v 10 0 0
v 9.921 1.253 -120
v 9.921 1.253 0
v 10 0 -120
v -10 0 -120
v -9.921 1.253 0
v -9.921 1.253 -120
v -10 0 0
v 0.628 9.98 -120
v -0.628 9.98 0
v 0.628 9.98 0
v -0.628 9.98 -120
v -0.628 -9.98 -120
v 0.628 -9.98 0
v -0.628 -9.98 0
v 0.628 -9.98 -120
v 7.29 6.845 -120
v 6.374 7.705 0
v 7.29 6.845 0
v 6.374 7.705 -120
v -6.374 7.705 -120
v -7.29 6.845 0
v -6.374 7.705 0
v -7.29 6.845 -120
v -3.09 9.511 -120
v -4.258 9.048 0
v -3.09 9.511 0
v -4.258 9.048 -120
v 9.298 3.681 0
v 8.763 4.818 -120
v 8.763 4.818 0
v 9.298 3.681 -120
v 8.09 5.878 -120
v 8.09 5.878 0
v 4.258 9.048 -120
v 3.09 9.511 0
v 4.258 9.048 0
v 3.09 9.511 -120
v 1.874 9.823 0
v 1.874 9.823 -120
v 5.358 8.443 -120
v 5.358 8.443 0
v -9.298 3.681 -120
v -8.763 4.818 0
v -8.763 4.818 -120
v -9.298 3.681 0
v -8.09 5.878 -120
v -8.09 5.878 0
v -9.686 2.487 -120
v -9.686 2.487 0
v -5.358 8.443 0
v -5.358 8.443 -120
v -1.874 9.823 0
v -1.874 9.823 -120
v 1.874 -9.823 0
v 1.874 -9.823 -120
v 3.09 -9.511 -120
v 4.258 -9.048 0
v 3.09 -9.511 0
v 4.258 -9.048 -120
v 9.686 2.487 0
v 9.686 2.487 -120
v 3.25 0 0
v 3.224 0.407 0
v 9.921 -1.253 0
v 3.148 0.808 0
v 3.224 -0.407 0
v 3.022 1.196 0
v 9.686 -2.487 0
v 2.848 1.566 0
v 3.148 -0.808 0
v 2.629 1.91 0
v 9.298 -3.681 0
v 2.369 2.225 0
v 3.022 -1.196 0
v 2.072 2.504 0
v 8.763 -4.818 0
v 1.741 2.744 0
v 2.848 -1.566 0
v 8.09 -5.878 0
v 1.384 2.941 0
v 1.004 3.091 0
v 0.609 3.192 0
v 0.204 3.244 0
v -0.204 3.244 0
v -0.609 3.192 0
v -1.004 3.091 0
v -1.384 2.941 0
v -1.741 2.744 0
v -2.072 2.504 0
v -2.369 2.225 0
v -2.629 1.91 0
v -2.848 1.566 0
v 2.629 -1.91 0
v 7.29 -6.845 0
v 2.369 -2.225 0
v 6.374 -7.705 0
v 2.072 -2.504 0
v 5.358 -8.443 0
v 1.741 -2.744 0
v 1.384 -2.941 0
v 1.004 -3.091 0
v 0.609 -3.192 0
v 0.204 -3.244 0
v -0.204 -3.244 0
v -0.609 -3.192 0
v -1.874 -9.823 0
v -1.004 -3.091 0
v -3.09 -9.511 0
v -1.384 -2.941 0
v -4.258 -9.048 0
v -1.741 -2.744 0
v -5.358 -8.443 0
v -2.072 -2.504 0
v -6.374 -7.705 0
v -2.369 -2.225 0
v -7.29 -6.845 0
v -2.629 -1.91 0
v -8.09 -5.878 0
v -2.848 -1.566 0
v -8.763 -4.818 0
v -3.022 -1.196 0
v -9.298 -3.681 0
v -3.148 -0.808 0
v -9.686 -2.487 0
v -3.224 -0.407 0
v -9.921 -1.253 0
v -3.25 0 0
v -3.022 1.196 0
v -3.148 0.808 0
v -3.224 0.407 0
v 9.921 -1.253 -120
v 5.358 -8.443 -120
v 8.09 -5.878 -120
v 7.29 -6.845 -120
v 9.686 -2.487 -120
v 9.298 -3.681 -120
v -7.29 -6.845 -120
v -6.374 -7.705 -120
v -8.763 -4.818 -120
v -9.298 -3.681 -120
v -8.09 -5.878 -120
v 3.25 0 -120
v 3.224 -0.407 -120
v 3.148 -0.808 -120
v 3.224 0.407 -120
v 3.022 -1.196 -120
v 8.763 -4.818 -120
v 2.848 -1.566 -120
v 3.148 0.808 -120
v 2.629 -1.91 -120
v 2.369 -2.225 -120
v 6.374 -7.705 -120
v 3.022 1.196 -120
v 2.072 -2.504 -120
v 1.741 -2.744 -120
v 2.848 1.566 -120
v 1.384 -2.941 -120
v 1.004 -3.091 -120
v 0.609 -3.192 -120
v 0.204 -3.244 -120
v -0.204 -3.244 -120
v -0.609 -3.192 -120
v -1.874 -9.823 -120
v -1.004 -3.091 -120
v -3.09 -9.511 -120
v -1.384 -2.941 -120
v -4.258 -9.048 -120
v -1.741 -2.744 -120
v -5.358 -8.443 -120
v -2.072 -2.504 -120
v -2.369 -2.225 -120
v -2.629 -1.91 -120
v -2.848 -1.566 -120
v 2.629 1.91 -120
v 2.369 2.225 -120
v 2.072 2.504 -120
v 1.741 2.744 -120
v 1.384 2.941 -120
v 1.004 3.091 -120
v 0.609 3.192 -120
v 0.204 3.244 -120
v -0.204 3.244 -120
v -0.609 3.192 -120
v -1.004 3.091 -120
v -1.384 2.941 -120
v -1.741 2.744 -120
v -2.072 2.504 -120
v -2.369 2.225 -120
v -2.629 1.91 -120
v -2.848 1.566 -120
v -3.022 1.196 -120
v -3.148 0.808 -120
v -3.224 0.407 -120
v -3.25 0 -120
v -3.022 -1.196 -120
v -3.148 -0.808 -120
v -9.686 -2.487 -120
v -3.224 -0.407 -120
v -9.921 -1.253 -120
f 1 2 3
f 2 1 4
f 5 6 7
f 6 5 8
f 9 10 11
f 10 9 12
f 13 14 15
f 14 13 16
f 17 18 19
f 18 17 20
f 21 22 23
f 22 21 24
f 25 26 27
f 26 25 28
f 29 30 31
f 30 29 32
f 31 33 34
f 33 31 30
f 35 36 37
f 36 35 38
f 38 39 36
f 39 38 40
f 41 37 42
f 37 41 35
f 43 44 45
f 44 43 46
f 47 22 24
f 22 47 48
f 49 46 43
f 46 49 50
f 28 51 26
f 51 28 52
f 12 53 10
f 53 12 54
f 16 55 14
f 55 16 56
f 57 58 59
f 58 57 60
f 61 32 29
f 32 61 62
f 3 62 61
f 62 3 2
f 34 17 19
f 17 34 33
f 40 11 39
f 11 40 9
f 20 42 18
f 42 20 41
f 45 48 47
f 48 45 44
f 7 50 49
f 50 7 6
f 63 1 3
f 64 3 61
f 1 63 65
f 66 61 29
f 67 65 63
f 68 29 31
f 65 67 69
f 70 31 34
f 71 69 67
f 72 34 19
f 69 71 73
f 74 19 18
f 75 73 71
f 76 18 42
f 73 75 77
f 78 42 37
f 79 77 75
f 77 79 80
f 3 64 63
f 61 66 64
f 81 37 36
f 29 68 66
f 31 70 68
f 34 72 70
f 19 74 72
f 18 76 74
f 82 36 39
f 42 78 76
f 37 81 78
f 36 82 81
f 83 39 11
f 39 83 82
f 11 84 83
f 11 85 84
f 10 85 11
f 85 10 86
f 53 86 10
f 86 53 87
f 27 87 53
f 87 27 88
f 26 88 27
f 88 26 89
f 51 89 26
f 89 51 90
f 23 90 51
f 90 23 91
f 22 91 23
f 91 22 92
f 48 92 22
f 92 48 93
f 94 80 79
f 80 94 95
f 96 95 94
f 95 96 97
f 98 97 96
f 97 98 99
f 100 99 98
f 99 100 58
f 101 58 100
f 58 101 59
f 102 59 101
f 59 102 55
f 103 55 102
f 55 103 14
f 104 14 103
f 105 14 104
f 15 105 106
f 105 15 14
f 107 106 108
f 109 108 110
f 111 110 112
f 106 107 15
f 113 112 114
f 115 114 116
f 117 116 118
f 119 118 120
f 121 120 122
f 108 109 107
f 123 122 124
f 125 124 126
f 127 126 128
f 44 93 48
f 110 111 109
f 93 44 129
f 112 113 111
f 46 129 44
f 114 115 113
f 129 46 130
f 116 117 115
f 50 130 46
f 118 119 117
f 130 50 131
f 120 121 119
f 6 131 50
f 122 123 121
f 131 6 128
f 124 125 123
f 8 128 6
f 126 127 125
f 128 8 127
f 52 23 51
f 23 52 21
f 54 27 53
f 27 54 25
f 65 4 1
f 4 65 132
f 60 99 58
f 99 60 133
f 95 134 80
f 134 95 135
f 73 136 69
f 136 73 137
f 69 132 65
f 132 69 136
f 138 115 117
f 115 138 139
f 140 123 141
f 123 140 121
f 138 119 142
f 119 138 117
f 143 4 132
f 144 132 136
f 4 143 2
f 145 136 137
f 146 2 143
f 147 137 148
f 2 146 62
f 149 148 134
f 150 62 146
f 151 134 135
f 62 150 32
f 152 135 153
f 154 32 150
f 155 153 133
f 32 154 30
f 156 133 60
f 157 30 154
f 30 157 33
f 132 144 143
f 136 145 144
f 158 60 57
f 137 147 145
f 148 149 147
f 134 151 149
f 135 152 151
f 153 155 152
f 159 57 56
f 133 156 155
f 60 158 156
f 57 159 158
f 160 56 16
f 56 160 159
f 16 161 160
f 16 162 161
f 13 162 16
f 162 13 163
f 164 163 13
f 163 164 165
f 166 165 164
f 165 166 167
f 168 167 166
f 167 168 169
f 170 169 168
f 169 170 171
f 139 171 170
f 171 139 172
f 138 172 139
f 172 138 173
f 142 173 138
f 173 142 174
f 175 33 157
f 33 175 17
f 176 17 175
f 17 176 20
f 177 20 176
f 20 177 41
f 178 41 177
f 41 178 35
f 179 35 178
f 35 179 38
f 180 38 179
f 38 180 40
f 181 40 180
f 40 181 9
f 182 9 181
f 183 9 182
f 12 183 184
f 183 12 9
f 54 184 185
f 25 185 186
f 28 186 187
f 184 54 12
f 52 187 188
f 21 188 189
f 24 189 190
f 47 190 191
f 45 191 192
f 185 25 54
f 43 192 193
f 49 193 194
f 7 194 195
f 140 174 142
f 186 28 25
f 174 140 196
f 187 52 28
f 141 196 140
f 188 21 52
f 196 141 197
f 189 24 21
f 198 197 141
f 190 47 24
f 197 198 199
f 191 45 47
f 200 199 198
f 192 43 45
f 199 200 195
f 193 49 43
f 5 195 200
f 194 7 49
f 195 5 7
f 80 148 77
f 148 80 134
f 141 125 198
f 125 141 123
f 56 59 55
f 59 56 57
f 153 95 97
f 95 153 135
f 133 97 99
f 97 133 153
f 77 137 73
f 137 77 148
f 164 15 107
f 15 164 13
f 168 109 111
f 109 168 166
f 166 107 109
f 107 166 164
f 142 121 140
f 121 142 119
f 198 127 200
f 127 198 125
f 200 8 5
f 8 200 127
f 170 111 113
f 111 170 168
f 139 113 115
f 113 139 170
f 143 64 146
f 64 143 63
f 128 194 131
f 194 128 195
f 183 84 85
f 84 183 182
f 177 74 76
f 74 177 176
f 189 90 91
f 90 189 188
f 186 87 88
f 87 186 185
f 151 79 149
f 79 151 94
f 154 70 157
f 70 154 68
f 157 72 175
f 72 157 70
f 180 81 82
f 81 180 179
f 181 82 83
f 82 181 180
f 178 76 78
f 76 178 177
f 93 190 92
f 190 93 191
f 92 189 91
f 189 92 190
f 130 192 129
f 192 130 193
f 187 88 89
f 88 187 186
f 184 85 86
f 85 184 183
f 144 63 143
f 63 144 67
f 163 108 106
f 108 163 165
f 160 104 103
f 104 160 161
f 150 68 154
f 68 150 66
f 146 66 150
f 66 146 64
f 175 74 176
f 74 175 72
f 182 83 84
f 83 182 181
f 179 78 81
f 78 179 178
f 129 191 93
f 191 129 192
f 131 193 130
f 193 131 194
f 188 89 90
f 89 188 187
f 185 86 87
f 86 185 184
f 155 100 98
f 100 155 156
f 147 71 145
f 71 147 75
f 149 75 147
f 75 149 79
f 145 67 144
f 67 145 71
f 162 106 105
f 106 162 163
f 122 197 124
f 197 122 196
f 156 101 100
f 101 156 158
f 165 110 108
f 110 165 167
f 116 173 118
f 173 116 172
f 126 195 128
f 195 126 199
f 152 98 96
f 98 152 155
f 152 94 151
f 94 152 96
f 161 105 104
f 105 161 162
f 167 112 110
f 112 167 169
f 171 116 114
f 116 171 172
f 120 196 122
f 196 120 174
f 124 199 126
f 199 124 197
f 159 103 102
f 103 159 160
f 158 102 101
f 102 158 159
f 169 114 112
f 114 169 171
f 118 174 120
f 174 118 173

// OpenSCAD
$fn = 50;


difference() {
	union() {
		translate(v = [0, 0, -120.0000000000]) {
			cylinder(h = 120, r = 10.0000000000);
		}
		cylinder(h = 0, r = 16.0000000000);
	}
	union() {
		#translate(v = [0, 0, -120]) {
			cylinder(h = 120, r = 3.2500000000);
		}
	}
}
